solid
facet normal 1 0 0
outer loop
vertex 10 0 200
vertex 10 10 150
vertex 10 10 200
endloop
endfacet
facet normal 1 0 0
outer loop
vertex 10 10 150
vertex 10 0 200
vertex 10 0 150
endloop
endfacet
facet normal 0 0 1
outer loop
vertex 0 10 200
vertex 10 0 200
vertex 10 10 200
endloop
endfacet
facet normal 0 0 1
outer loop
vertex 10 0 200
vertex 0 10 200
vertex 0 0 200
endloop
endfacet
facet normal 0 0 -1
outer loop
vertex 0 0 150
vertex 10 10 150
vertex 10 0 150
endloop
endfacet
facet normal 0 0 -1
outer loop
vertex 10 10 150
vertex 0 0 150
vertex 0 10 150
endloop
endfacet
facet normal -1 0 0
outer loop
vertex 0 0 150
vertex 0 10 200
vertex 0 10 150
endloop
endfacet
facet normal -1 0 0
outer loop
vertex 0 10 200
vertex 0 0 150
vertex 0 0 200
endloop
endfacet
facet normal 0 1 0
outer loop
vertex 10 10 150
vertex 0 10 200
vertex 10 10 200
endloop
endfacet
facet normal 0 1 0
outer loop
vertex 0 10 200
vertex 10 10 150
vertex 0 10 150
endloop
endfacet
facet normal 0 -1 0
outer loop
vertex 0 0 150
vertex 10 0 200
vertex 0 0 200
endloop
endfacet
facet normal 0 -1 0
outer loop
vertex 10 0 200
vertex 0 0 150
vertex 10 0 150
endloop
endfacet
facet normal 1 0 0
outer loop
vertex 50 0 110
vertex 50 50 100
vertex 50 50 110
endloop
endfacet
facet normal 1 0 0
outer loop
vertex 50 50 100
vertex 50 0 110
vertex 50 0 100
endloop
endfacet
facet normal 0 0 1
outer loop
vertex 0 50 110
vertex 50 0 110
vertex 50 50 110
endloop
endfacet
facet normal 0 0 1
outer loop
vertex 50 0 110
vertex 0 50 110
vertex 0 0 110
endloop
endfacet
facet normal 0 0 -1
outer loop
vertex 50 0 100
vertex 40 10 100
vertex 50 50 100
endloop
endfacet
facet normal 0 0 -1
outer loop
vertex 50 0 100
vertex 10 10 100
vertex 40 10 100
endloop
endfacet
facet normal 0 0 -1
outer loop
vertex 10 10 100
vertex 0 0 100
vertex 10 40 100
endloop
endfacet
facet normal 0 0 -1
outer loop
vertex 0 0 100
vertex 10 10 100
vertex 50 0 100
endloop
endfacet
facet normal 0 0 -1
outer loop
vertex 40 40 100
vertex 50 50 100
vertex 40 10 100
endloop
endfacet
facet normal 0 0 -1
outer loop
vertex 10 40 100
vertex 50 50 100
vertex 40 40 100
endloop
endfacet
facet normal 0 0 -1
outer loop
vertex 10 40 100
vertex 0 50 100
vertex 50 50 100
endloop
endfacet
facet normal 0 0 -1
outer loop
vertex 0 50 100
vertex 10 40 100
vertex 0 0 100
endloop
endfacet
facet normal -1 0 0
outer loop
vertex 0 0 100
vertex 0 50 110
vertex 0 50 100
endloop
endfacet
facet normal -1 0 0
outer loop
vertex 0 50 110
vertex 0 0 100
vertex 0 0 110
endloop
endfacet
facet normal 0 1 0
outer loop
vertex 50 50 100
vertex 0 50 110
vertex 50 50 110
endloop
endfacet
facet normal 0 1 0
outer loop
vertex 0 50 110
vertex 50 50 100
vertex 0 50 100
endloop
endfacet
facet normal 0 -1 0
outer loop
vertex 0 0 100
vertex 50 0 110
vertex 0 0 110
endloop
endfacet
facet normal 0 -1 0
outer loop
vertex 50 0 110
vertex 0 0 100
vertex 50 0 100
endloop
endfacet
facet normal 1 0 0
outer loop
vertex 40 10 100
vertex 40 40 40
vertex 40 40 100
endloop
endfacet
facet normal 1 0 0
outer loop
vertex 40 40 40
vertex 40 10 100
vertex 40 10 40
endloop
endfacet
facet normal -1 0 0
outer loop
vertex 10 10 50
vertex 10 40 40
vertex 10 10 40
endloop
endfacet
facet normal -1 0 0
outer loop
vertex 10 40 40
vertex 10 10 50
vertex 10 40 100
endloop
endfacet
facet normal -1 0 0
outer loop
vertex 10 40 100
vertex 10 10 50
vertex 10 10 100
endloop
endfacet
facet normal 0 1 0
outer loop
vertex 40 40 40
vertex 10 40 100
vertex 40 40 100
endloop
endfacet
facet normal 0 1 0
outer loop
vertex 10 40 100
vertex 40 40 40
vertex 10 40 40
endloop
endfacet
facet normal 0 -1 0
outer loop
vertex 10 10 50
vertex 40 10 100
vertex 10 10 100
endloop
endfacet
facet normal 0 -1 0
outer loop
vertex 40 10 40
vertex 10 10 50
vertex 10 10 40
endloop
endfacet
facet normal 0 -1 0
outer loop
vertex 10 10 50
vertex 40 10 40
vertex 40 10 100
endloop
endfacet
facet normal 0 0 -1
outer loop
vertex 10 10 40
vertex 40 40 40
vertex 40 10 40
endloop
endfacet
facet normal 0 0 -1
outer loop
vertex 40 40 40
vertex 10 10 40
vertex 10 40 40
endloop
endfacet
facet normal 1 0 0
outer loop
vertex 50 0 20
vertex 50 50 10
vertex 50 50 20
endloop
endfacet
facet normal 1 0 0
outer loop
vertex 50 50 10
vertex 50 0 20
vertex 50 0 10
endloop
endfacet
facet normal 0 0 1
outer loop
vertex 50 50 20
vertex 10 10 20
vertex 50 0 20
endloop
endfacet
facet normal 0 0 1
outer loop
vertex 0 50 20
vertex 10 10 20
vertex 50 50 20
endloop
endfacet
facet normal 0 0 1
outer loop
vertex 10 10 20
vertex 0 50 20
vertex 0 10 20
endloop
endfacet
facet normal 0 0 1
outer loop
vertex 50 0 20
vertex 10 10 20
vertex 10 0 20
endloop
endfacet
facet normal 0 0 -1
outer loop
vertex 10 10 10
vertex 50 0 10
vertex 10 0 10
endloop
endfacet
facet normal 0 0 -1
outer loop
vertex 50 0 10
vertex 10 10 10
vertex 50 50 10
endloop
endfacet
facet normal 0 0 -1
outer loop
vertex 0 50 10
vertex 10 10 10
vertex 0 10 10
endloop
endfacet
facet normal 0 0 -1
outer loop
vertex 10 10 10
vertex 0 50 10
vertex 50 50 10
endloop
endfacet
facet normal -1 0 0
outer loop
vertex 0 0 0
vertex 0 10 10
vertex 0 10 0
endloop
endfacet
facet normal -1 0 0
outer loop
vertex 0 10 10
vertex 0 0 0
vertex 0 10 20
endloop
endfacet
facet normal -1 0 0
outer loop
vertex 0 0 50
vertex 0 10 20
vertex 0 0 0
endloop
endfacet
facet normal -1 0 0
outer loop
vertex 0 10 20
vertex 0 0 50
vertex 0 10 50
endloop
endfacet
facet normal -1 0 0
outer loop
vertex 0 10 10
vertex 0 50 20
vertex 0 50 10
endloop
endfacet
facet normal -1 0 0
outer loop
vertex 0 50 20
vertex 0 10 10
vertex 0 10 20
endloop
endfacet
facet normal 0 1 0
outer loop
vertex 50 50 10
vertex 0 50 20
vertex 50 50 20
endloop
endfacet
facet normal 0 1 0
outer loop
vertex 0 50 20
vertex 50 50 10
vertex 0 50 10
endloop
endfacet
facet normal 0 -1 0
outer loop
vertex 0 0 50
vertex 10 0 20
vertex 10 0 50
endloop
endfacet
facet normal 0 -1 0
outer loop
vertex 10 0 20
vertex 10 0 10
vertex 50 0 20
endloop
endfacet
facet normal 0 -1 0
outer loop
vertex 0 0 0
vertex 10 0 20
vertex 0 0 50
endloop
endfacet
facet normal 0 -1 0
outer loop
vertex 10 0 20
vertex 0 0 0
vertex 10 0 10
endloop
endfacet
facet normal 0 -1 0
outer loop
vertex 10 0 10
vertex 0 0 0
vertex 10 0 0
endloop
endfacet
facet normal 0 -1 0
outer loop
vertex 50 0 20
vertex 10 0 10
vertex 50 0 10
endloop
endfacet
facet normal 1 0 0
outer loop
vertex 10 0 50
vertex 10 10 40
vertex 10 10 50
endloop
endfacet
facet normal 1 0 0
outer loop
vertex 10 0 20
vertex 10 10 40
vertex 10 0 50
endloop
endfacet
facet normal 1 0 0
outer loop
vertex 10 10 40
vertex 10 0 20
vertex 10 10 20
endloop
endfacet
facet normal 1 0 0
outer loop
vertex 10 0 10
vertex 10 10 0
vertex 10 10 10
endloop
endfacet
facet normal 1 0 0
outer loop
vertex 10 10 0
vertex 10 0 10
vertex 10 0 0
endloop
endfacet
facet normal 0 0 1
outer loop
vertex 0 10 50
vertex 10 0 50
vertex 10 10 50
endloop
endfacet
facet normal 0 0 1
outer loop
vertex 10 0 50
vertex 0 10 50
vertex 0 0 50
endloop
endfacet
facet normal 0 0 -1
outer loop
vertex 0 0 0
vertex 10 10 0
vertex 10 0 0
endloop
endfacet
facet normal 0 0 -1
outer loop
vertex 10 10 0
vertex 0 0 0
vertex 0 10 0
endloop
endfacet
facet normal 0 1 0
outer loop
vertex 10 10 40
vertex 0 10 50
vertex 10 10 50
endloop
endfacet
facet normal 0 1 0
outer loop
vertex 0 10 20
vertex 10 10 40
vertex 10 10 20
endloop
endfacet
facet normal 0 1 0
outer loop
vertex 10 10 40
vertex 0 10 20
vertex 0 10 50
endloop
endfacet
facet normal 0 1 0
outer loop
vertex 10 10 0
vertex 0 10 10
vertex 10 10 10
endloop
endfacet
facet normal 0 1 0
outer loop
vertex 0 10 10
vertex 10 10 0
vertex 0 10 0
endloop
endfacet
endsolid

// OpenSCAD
// Define dimensions for each component
module tall_narrow_block() {
    cube([10, 10, 50]); // Width: 10, Depth: 10, Height: 50
}

module short_wide_block() {
    cube([50, 50, 10]); // Width: 50, Depth: 50, Height: 10
}

module medium_block() {
    cube([30, 30, 30]); // Width: 30, Depth: 30, Height: 30
}

// Assemble the model based on the positional relationships
module assembly() {
    // Layer 1: tall_narrow_block_1
    translate([0, 0, 150]) // Position at the top
        tall_narrow_block();

    // Layer 2: short_wide_block_1
    translate([0, 0, 100]) // Positioned directly below the first tall and narrow block
        short_wide_block();

    // Layer 3: medium_block_1
    translate([10, 10, 70]) // Positioned below the first short and wide block
        medium_block();

    // Layer 4: medium_block_2
    translate([10, 10, 40]) // Positioned below the first medium block
        medium_block();

    // Layer 5: short_wide_block_2
    translate([0, 0, 10]) // Positioned below the second medium block
        short_wide_block();

    // Layer 6: tall_narrow_block_2
    translate([0, 0, 0]) // Positioned at the bottom of the assembly
        tall_narrow_block();
}

// Render the assembly
assembly();
